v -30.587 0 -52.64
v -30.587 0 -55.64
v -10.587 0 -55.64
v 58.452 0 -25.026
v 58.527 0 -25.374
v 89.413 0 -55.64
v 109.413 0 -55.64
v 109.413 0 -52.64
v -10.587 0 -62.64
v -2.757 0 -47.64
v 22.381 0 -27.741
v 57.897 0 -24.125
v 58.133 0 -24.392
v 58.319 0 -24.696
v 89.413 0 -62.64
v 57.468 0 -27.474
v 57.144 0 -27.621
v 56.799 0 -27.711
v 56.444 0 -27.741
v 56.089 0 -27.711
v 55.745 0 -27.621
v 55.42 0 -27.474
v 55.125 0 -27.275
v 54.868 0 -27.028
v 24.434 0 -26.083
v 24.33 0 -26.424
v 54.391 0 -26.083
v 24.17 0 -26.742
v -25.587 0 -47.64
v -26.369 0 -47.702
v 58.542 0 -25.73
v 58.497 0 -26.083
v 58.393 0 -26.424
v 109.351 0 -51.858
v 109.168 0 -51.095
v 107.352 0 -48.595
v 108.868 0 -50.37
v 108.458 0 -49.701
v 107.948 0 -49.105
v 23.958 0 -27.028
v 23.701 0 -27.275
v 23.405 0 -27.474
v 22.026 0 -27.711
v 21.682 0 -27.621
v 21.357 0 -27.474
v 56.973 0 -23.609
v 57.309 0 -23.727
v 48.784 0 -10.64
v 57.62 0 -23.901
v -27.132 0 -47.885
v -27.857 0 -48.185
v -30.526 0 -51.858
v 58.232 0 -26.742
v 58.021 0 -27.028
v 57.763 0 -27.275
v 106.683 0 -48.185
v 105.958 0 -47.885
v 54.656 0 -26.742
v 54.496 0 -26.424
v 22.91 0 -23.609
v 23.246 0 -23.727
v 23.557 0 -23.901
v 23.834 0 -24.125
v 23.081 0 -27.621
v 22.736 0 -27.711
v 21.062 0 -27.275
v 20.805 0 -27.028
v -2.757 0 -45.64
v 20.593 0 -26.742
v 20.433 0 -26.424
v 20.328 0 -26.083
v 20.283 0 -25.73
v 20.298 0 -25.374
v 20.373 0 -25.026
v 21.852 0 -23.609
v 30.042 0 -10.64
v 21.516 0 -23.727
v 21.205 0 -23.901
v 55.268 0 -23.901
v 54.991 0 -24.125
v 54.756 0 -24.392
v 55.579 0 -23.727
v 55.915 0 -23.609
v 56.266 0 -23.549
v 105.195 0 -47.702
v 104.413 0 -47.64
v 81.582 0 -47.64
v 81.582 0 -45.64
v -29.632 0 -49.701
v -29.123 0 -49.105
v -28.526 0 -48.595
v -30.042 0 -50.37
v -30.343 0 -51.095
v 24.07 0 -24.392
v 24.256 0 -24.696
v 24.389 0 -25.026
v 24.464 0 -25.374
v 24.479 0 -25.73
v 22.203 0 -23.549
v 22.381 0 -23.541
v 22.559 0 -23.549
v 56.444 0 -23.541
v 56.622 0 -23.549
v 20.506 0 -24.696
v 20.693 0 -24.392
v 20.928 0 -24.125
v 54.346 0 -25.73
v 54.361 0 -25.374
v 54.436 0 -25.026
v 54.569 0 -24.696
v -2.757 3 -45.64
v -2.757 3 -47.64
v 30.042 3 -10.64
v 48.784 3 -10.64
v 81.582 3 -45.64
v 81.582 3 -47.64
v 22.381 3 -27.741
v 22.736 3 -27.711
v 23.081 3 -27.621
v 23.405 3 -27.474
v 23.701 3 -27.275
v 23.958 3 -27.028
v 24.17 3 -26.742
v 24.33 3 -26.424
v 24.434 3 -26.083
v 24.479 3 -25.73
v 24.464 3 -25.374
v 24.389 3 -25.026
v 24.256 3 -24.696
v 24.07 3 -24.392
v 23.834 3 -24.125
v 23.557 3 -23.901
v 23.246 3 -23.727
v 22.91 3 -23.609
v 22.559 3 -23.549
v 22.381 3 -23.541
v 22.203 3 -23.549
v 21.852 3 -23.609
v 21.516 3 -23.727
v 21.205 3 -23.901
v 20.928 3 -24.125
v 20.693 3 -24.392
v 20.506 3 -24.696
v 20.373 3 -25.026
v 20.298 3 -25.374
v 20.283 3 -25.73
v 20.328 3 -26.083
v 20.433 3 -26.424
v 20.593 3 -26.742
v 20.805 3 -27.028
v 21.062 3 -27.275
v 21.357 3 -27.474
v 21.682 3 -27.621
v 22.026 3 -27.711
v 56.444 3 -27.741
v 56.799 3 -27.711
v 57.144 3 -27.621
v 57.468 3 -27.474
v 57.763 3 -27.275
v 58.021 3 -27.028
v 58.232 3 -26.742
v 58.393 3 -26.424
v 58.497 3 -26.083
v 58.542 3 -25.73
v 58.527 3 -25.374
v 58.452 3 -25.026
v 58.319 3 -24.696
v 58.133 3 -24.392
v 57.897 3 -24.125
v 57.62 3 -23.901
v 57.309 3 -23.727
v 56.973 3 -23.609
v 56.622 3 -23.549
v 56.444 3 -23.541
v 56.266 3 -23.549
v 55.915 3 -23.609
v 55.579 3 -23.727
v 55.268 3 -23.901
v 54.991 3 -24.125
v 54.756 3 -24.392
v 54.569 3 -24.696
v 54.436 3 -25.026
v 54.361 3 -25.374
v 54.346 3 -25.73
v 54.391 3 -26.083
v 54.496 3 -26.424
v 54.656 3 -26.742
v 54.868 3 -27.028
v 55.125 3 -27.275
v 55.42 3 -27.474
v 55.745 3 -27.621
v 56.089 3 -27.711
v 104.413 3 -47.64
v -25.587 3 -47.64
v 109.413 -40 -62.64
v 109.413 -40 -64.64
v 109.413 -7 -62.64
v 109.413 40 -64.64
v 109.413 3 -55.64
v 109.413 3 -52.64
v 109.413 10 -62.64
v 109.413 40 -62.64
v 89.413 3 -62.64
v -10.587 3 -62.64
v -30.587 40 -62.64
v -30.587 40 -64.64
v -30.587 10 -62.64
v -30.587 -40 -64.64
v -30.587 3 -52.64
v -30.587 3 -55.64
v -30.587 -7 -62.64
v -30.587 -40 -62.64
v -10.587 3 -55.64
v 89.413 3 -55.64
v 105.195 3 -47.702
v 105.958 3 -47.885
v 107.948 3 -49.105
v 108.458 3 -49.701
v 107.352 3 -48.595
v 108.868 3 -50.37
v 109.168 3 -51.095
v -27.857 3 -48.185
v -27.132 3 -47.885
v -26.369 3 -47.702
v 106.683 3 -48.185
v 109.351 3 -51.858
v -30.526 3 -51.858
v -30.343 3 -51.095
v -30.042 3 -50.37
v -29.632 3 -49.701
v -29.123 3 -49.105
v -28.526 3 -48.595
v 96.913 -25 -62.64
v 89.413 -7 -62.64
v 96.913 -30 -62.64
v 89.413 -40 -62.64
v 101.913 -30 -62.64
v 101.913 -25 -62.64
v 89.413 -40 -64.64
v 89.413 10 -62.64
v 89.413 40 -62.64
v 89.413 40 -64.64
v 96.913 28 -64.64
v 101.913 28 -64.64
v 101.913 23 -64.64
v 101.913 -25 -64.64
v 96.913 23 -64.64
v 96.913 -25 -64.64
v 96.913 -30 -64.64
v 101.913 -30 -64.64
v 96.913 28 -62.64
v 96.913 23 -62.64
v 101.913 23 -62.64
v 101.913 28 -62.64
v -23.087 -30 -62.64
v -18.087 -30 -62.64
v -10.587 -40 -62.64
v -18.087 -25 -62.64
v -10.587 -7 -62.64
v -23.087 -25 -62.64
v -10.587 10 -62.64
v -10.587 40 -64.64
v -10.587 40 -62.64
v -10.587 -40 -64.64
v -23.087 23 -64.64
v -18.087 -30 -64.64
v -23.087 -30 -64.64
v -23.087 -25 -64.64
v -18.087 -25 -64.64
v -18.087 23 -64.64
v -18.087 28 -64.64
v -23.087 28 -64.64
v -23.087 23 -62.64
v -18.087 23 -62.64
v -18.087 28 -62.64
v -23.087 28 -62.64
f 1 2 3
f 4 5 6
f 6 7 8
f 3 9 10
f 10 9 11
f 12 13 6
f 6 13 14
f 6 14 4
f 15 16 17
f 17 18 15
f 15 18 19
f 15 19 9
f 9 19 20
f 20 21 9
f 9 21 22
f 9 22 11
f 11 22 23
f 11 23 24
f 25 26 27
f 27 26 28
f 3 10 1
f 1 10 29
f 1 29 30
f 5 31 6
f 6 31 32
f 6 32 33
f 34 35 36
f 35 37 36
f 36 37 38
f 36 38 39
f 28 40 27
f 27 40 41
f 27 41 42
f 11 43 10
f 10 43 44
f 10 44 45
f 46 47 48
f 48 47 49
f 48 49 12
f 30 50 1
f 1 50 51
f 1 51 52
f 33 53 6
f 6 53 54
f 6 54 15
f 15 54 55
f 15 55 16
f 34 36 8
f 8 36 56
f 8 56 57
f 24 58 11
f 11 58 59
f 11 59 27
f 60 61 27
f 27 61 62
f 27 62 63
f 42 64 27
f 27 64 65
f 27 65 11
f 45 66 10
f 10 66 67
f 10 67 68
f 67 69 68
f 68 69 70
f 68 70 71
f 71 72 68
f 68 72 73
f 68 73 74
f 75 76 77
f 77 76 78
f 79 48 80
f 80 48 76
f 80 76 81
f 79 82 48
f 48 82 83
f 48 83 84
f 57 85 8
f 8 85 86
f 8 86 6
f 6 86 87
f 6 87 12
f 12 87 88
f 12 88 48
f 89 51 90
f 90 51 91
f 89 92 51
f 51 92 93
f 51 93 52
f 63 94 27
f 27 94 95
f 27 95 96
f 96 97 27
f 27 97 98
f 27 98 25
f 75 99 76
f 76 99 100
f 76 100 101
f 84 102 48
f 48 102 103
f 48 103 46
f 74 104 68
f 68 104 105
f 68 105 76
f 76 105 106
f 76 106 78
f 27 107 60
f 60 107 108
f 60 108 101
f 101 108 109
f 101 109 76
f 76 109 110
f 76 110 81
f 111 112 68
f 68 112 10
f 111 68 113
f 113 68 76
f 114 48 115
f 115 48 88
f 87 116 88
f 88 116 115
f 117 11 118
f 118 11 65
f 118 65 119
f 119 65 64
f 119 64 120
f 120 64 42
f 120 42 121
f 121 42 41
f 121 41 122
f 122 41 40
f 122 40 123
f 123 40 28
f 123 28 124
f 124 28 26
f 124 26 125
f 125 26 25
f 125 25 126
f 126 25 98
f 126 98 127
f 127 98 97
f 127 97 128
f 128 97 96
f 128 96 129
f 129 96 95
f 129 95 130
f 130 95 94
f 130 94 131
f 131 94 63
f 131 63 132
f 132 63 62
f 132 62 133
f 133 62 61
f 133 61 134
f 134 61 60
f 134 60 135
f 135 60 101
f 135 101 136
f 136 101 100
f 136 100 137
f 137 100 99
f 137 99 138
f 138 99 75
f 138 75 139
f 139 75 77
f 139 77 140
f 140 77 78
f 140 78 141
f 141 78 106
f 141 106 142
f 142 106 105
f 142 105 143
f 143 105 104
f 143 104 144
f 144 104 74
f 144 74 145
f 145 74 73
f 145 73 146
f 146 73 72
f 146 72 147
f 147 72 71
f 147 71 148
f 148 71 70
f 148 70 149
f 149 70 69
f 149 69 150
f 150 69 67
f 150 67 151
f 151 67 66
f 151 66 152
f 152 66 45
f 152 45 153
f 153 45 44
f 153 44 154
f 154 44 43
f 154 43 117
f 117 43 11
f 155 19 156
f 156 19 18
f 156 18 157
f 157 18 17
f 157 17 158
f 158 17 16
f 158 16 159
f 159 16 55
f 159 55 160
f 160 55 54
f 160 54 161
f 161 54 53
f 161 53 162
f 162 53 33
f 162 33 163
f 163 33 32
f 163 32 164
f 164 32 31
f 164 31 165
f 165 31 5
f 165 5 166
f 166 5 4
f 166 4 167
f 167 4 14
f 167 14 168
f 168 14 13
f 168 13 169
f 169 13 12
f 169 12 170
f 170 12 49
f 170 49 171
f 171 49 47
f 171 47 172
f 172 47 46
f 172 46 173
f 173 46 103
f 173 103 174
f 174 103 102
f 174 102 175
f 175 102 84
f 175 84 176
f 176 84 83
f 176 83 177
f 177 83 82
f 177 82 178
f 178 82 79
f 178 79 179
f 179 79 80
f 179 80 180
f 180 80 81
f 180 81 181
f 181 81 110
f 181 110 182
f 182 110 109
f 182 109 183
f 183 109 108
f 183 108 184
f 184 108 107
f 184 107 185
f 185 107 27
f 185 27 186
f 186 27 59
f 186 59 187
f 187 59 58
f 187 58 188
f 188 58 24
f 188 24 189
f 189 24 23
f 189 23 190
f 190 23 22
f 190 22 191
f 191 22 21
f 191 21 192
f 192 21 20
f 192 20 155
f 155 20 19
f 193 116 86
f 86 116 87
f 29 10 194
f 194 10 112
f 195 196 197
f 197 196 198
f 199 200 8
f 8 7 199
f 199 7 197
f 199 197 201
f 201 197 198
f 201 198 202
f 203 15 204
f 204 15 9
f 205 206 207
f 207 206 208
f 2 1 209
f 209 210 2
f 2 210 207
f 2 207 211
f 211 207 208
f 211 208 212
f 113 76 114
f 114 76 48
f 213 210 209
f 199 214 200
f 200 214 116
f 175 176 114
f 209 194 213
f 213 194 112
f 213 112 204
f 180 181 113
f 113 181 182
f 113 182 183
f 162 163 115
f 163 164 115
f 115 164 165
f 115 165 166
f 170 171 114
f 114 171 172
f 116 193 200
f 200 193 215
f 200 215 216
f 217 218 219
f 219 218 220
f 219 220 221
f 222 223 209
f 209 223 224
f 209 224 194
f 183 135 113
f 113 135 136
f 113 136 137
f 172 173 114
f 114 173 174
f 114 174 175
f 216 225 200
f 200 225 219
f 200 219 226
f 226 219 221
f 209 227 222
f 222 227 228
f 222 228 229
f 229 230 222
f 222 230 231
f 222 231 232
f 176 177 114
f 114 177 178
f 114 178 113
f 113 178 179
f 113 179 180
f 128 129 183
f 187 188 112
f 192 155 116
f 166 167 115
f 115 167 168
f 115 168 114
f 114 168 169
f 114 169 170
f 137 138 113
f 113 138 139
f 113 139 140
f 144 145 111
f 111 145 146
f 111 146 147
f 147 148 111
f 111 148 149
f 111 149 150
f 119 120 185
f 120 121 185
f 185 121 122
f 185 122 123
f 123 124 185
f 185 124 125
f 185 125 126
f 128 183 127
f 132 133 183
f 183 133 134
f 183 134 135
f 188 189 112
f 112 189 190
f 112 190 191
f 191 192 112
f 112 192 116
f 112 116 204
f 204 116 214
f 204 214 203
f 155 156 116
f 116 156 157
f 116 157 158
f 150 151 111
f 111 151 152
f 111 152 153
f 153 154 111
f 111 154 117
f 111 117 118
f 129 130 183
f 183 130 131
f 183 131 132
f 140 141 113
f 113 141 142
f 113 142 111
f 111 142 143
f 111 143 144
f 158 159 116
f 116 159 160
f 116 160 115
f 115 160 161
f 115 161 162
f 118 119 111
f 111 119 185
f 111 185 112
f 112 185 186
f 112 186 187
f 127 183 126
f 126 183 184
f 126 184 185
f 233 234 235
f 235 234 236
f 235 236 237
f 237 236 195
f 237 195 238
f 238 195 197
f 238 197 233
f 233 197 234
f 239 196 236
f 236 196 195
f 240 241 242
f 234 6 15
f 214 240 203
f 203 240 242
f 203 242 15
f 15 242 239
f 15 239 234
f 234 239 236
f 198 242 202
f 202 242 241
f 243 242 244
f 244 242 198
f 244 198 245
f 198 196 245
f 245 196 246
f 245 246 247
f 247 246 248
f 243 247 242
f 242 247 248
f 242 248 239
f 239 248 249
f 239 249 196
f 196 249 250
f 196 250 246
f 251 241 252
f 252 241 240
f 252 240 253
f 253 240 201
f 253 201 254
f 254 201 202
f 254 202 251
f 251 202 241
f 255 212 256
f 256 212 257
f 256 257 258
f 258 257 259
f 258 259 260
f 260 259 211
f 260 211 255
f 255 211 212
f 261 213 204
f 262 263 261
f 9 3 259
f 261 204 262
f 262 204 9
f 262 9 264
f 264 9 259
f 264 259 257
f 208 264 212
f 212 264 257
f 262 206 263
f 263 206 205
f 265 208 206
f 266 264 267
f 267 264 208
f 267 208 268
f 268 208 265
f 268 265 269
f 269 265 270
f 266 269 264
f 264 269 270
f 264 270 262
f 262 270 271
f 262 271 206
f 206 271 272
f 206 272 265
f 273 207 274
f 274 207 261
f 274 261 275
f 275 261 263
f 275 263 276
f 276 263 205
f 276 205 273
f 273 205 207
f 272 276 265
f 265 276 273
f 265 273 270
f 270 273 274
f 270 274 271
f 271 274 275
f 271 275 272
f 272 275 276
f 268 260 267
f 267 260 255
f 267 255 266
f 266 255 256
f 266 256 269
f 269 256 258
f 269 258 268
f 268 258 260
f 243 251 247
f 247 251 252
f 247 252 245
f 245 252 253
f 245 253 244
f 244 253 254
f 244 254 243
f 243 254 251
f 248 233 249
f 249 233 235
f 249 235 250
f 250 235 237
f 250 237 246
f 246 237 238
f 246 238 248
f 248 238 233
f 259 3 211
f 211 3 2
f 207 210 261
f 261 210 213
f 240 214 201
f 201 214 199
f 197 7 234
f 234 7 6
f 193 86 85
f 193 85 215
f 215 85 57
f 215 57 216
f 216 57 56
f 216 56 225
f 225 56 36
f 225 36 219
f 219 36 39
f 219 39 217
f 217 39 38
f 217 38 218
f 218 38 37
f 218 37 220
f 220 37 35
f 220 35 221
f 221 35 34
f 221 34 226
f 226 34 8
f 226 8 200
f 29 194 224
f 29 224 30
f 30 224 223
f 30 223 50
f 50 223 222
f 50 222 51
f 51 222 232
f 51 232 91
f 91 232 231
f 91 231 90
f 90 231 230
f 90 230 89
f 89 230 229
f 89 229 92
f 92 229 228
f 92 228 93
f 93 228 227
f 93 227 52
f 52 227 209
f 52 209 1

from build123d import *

# Parameters (mm, degrees)
SKETCH4_R           = 2.1
BOSS_EXTRUDE3_DEPTH = 1.2
SKETCH5_W           = 84.339489928
SKETCH5_H           = 2
BOSS_EXTRUDE4_DEPTH = 2.4
SKETCH6_R           = 2.1
BOSS_EXTRUDE5_DEPTH = 1.2
SKETCH7_W           = 104.067802039
SKETCH7_H           = 60.652447956
CUT_EXTRUDE1_DEPTH  = 3.6
BOSS_EXTRUDE6_DEPTH = 1.2
CUT_EXTRUDE2_DEPTH  = 10
SKETCH10_R          = 2.1
BOSS_EXTRUDE7_DEPTH = 1.8
SKETCH11_W          = 20
SKETCH11_H          = 37
SKETCH11_H_2        = 40
SKETCH11_H_3        = 3
BOSS_EXTRUDE8_DEPTH = 2
SKETCH12_W          = 5
SKETCH12_H          = 5
CUT_EXTRUDE3_DEPTH  = 22
CHAMFER2_SIZE       = 7
FILLET1_R           = 5


with BuildPart() as part:
    # Sketch4 → Boss-Extrude3 (new body)
    with BuildSketch(Plane(origin=(0, 0, 0), x_dir=(1, 0, 0), z_dir=(0, 1, 0))):
        Polygon((39.4127274, 47.640295112), (-2.757017564, 47.640295112), (-2.757017564, 45.640295112), (39.4127274, 0.640295112), align=None)
        with Locations((22.381300815, 25.64100497)):
            Circle(SKETCH4_R, mode=Mode.SUBTRACT)
        Polygon((81.582472364, 47.640295112), (39.4127274, 47.640295112), (39.4127274, 0.640295112), (81.582472364, 45.640295112), align=None)
        with Locations((56.444153985, 25.64100497)):
            Circle(SKETCH4_R, mode=Mode.SUBTRACT)
    extrude(amount=BOSS_EXTRUDE3_DEPTH)

    # Sketch5 → Boss-Extrude4 (add)
    with BuildSketch(Plane(origin=(0, 0, 0), x_dir=(-1, 0, 0), z_dir=(0, -1, 0))):
        with Locations((-39.4127274, 46.640295112)):
            Rectangle(SKETCH5_W, SKETCH5_H)
    extrude(amount=BOSS_EXTRUDE4_DEPTH)

    # Sketch6 → Boss-Extrude5 (add)
    with BuildSketch(Plane(origin=(0, -2.4, 0), x_dir=(-1, 0, 0), z_dir=(0, -1, 0))):
        Polygon((2.757017564, 47.640295112), (-81.582472364, 47.640295112), (-81.582472364, 45.640295112), (-39.4127274, 0.640295112), (2.757017564, 45.640295112), align=None)
        with Locations((-22.381300815, 25.64100497)):
            Circle(SKETCH6_R, mode=Mode.SUBTRACT)
        with Locations((-56.444153985, 25.64100497)):
            Circle(SKETCH6_R, mode=Mode.SUBTRACT)
    extrude(amount=BOSS_EXTRUDE5_DEPTH)

    # Sketch7 → Cut-Extrude1 (cut)
    with BuildSketch(Plane(origin=(0, -3.6, 0), x_dir=(-1, 0, 0), z_dir=(0, -1, 0))):
        with Locations((-36.785683682, 25.144953811)):
            Rectangle(SKETCH7_W, SKETCH7_H)
    extrude(amount=-CUT_EXTRUDE1_DEPTH, mode=Mode.SUBTRACT)

    # Sketch8 → Boss-Extrude6 (add)
    with BuildSketch(Plane(origin=(0, 1.2, 0), x_dir=(1, 0, 0), z_dir=(0, 1, 0))):
        Polygon((-2.757017564, 47.640295112), (39.4127274, 47.640295112), (39.4127274, 62.640295112), (-30.5872726, 62.640295112), (-30.5872726, 47.640295112), align=None)
        Polygon((81.582472364, 47.640295112), (109.4127274, 47.640295112), (109.4127274, 62.640295112), (39.4127274, 62.640295112), (39.4127274, 47.640295112), align=None)
    extrude(amount=-BOSS_EXTRUDE6_DEPTH)

    # Sketch9 → Cut-Extrude2 (cut)
    with BuildSketch(Plane(origin=(0, 1.2, 0), x_dir=(1, 0, 0), z_dir=(0, 1, 0))):
        Polygon((30.041672963, 10.640295112), (48.783781837, 10.640295112), (39.4127274, 0.640295112), align=None)
    extrude(amount=-CUT_EXTRUDE2_DEPTH, mode=Mode.SUBTRACT)

    # Sketch10 → Boss-Extrude7 (add)
    with BuildSketch(Plane(origin=(0, 1.2, 0), x_dir=(1, 0, 0), z_dir=(0, 1, 0))):
        Polygon((-2.757017564, 47.640295112), (-2.757017564, 45.640295112), (30.041672963, 10.640295112), (48.783781837, 10.640295112), (81.582472364, 45.640295112), (81.582472364, 47.640295112), (109.4127274, 47.640295112), (109.4127274, 62.640295112), (-30.5872726, 62.640295112), (-30.5872726, 47.640295112), align=None)
        with Locations((22.381300815, 25.64100497)):
            Circle(SKETCH10_R, mode=Mode.SUBTRACT)
        with Locations((56.444153985, 25.64100497)):
            Circle(SKETCH10_R, mode=Mode.SUBTRACT)
    extrude(amount=BOSS_EXTRUDE7_DEPTH)

    # Sketch11 → Boss-Extrude8 (add)
    with BuildSketch(Plane(origin=(0, 0, -62.640295112), x_dir=(-1, 0, 0), z_dir=(0, 0, -1))):
        with Locations((-99.4127274, 21.5)):
            Rectangle(SKETCH11_W, SKETCH11_H)
        with Locations((-99.4127274, -20)):
            Rectangle(SKETCH11_W, SKETCH11_H_2)
        with Locations((-99.4127274, 1.5)):
            Rectangle(SKETCH11_W, SKETCH11_H_3)
        with Locations((20.5872726, 21.5)):
            Rectangle(SKETCH11_W, SKETCH11_H)
        with Locations((20.5872726, 1.5)):
            Rectangle(SKETCH11_W, SKETCH11_H_3)
        with Locations((20.5872726, -20)):
            Rectangle(SKETCH11_W, SKETCH11_H_2)
    extrude(amount=BOSS_EXTRUDE8_DEPTH)

    # Sketch12 → Cut-Extrude3 (cut)
    with BuildSketch(Plane(origin=(0, 0, -64.640295112), x_dir=(-1, 0, 0), z_dir=(0, 0, -1))):
        with Locations((-99.4127274, 25.5)):
            Rectangle(SKETCH12_W, SKETCH12_H)
        with Locations((-99.4127274, -27.5)):
            Rectangle(SKETCH12_W, SKETCH12_H)
        with Locations((20.5872726, -27.5)):
            Rectangle(SKETCH12_W, SKETCH12_H)
        with Locations((20.5872726, 25.5)):
            Rectangle(SKETCH12_W, SKETCH12_H)
    extrude(amount=-CUT_EXTRUDE3_DEPTH, mode=Mode.SUBTRACT)

    # Chamfer2
    chamfer2_edges = [part.edges().sort_by_distance(p)[0] for p in [
        (-20.5872726, 0, -62.640295112),
        (99.4127274, 3, -62.640295112),
        (99.4127274, 0, -62.640295112),
        (-20.5872726, 3, -62.640295112),
    ]]
    chamfer(chamfer2_edges, length=CHAMFER2_SIZE)

    # Fillet1
    fillet1_edges = [part.edges().sort_by_distance(p)[0] for p in [
        (109.4127274, 1.5, -47.640295112),
        (-30.5872726, 1.5, -47.640295112),
    ]]
    fillet(fillet1_edges, radius=FILLET1_R)


solid = part.part
